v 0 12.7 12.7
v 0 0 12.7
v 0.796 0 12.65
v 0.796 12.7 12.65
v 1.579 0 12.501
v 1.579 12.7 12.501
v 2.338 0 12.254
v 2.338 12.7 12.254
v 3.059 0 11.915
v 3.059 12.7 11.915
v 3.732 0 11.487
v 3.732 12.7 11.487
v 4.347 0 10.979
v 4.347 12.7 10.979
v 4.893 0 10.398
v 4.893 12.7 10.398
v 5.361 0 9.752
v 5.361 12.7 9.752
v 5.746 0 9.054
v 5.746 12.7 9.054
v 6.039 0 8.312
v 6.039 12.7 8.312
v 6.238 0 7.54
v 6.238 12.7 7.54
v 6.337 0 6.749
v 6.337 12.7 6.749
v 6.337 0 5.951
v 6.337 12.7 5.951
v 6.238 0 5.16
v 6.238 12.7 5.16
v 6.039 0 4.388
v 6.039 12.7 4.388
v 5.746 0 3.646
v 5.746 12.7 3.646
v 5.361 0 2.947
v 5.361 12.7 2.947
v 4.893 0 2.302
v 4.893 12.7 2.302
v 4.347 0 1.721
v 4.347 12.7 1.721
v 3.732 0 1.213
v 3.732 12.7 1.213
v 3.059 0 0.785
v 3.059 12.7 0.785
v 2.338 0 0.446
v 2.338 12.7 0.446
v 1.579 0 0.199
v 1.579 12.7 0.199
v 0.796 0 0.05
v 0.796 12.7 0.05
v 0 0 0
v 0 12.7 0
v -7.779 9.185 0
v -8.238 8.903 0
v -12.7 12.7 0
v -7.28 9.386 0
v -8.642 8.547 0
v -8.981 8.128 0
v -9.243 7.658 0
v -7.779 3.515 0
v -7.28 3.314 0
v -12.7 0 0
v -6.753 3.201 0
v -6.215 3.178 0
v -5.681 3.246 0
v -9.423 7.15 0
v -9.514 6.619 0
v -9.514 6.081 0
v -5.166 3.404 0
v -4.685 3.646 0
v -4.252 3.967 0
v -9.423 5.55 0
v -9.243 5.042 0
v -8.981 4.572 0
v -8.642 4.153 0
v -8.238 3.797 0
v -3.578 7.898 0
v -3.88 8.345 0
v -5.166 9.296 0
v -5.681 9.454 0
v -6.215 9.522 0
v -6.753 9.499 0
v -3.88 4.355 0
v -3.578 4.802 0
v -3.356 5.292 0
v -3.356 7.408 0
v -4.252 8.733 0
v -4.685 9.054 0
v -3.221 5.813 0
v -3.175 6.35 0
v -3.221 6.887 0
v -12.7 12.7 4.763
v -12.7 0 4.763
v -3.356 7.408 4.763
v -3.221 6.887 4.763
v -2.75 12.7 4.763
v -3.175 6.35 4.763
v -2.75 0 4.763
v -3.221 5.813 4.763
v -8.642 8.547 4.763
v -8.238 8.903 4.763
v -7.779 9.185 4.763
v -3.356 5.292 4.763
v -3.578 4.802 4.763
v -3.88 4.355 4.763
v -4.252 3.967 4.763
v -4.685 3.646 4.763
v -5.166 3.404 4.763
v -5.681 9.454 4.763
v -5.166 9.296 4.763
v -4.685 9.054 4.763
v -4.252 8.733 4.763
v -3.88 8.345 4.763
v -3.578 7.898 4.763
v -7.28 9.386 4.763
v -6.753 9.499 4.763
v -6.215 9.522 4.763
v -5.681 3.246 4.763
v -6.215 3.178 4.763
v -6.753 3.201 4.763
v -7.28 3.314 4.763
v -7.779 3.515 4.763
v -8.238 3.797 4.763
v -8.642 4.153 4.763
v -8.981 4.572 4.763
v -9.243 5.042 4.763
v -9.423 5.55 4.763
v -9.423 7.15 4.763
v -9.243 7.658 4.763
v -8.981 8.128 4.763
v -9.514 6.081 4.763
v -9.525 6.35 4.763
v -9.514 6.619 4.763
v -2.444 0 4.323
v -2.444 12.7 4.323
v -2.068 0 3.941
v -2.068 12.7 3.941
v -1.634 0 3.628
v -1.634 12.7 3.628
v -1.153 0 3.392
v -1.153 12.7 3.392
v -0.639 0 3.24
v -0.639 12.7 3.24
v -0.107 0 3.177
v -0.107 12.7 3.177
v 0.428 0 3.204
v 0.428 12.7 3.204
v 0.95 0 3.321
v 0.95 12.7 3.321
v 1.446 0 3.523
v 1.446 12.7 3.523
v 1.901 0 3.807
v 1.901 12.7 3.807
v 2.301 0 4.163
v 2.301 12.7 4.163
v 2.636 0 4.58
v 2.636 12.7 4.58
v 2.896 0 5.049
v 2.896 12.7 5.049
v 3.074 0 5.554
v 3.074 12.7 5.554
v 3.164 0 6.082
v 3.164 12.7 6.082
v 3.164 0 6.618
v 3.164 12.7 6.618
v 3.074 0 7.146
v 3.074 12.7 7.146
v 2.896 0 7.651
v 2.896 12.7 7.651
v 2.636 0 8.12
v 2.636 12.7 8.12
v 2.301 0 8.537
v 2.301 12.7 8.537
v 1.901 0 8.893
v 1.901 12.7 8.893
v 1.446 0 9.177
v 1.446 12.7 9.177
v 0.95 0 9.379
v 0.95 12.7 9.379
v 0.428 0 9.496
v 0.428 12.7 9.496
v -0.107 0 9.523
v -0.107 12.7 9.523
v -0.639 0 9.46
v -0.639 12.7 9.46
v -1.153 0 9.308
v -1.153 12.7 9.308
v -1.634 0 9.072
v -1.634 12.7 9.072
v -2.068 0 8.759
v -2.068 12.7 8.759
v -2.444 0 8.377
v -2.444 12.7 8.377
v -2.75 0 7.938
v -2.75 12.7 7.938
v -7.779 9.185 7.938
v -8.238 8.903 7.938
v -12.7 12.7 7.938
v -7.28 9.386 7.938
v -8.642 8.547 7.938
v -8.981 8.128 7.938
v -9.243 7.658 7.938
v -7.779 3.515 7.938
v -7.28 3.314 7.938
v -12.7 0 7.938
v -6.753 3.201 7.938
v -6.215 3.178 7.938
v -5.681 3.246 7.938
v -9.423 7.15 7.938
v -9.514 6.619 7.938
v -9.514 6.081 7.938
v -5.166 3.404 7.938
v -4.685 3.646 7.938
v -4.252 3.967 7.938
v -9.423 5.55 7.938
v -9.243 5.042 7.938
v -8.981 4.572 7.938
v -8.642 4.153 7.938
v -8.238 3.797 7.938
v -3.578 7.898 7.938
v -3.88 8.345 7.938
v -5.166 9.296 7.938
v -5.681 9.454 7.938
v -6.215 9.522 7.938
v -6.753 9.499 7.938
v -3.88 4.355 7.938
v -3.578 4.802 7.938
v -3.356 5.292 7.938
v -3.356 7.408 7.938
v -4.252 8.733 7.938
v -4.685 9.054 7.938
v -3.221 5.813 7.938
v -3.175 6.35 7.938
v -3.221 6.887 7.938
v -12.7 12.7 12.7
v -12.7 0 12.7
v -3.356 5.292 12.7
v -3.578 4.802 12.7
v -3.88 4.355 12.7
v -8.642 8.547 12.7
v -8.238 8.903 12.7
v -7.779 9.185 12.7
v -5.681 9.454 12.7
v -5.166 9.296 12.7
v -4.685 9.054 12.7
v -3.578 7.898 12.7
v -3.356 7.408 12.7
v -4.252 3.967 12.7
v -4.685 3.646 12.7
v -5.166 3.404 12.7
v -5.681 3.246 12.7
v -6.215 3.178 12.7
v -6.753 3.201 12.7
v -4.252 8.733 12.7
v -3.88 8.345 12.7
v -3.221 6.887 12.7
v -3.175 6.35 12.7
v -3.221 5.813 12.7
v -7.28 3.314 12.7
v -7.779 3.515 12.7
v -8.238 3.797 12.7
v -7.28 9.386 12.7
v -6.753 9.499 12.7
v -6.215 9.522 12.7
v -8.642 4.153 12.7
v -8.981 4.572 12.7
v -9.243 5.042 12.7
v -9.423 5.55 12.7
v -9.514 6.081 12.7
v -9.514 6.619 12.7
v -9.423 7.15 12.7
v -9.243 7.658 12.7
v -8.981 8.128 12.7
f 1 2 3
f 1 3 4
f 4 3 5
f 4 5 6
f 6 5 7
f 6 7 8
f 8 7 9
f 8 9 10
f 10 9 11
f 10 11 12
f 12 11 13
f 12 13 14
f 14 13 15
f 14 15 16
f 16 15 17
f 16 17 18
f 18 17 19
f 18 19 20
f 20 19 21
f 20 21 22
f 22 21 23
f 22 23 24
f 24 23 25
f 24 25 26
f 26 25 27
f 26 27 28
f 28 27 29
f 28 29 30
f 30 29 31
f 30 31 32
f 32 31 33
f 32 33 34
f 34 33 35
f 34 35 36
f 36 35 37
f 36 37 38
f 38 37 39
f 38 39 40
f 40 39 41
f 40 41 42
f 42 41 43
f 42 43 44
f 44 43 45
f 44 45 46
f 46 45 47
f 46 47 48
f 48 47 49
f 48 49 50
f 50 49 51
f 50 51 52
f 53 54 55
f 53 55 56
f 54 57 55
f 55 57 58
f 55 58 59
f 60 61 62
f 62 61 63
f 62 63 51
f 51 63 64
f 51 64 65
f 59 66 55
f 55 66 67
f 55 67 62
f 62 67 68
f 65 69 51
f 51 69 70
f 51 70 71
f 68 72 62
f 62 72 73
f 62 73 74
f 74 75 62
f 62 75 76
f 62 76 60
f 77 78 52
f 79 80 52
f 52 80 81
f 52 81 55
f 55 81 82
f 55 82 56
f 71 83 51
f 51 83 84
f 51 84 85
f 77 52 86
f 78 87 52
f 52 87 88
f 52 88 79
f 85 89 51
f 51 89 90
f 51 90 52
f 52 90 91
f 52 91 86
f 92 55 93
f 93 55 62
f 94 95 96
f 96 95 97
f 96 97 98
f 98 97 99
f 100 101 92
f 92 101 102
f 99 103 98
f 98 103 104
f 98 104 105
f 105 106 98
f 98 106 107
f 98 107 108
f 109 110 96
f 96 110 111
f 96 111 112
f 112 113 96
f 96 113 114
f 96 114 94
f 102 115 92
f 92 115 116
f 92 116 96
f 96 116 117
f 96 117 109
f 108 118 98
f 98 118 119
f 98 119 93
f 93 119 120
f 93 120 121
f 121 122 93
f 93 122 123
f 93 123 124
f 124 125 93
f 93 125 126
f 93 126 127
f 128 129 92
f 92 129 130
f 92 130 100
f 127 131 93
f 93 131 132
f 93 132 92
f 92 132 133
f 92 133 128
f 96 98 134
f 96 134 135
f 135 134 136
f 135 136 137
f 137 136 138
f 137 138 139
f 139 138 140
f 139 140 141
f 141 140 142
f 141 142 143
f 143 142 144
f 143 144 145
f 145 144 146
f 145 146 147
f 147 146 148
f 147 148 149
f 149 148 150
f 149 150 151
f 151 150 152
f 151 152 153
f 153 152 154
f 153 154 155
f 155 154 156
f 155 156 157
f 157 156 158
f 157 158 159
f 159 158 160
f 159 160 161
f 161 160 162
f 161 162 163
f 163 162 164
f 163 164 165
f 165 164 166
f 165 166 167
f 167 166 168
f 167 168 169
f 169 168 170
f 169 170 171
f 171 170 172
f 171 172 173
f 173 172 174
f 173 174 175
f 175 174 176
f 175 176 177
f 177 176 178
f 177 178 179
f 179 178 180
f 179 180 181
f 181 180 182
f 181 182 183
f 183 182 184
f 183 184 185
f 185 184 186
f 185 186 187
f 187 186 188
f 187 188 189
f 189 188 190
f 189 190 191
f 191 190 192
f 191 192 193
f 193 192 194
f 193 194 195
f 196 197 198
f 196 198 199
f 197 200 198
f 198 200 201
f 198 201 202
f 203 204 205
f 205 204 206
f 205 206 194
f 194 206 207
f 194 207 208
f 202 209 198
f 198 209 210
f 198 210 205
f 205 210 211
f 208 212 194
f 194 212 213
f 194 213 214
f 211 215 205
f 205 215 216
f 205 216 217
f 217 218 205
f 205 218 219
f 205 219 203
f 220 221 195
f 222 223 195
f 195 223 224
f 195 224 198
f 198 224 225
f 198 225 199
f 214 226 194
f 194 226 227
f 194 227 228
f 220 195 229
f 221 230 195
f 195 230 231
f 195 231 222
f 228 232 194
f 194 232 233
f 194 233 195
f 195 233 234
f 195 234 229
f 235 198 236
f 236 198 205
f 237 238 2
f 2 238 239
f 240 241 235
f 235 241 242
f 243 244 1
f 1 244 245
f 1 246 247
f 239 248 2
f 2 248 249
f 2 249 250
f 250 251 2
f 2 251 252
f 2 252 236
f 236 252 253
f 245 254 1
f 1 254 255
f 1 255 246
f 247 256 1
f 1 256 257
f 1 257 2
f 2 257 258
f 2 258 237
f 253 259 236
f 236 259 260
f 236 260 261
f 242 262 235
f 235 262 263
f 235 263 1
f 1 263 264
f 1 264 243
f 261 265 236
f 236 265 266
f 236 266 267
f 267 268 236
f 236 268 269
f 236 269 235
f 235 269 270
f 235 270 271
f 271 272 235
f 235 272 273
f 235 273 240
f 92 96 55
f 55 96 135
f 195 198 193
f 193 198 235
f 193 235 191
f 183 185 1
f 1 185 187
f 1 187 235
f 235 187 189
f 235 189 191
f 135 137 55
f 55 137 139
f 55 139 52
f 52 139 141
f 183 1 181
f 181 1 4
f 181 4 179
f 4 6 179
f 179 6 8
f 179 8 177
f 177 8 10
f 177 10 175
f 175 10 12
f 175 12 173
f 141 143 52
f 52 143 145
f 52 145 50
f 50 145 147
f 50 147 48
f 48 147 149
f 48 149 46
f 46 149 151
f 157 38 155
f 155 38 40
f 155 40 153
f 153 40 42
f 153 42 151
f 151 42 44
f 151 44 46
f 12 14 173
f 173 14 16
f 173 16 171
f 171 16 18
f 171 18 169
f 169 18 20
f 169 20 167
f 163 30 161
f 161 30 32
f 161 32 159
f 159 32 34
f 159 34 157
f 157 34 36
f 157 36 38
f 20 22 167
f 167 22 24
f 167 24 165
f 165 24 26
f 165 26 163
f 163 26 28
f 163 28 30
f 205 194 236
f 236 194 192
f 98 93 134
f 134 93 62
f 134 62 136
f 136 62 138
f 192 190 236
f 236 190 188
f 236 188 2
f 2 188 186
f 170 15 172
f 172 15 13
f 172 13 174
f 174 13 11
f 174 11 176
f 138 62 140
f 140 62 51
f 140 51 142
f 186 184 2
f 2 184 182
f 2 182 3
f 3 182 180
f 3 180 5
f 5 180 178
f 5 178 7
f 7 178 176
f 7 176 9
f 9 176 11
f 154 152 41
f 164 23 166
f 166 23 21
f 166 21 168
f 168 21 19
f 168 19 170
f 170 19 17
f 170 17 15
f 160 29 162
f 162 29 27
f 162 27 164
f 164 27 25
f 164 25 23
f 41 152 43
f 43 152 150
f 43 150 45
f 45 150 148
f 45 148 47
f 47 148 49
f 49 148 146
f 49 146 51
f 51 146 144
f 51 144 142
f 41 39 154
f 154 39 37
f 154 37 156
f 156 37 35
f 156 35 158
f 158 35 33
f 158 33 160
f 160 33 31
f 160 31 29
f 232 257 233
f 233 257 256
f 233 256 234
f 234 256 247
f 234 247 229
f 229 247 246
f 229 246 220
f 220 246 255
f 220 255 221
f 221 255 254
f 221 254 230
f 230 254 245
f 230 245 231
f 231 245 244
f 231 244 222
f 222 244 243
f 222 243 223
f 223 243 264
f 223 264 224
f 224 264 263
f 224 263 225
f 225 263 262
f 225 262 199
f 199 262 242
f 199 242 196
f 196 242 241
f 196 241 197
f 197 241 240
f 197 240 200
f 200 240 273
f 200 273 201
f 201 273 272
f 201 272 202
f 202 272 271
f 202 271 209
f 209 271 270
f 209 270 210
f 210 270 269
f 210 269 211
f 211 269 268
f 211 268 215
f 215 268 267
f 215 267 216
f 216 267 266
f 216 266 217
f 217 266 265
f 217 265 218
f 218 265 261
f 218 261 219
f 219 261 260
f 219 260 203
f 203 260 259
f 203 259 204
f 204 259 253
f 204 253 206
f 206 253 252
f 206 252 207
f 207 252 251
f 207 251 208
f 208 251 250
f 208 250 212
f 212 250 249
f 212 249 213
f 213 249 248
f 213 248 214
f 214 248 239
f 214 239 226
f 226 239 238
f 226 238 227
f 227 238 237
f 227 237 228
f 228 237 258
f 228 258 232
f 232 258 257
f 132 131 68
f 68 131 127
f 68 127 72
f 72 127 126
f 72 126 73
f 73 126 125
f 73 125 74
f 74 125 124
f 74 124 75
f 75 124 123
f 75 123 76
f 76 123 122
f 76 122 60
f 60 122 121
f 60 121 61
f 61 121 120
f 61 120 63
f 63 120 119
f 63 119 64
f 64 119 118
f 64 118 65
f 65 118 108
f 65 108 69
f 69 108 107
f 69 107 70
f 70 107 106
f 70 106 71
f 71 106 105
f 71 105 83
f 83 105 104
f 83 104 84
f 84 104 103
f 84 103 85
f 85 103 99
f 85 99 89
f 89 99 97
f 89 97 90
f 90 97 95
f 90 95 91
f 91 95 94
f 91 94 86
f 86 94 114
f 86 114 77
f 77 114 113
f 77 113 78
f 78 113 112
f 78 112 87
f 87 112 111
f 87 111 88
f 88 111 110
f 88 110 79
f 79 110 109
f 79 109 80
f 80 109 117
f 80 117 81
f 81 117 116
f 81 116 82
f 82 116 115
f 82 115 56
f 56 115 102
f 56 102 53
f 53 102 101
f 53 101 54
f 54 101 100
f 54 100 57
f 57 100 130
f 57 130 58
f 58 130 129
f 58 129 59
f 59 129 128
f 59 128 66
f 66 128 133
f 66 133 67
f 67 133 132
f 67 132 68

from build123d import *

# Parameters (mm, degrees)
BOSS_EXTRUDE1_DEPTH = 12.7
SKETCH2_R           = 3.175
CUT_EXTRUDE1_DEPTH  = 13.7


with BuildPart() as part:
    # Sketch1 → Boss-Extrude1 (new body)
    with BuildSketch(Plane(origin=(0, 0, 0), x_dir=(1, 0, 0), z_dir=(0, 1, 0))):
        with BuildLine():
            Line((0, 0), (-12.7, 0))
            Line((-12.7, 0), (-12.7, -4.7625))
            Line((-12.7, -4.7625), (-2.749630657, -4.7625))
            ThreePointArc((-2.749630657, -4.7625), (3.175, -6.35), (-2.749630657, -7.9375))
            Line((-2.749630657, -7.9375), (-12.7, -7.9375))
            Line((-12.7, -7.9375), (-12.7, -12.7))
            Line((-12.7, -12.7), (0, -12.7))
            ThreePointArc((0, -12.7), (6.35, -6.35), (0, 0))
        make_face()
    extrude(amount=BOSS_EXTRUDE1_DEPTH)

    # Sketch2 → Cut-Extrude1 (cut, through all)
    with BuildSketch(Plane.XY.offset(12.7)):
        with Locations((-6.35, 6.35)):
            Circle(SKETCH2_R)
    extrude(amount=-CUT_EXTRUDE1_DEPTH, mode=Mode.SUBTRACT)


solid = part.part
